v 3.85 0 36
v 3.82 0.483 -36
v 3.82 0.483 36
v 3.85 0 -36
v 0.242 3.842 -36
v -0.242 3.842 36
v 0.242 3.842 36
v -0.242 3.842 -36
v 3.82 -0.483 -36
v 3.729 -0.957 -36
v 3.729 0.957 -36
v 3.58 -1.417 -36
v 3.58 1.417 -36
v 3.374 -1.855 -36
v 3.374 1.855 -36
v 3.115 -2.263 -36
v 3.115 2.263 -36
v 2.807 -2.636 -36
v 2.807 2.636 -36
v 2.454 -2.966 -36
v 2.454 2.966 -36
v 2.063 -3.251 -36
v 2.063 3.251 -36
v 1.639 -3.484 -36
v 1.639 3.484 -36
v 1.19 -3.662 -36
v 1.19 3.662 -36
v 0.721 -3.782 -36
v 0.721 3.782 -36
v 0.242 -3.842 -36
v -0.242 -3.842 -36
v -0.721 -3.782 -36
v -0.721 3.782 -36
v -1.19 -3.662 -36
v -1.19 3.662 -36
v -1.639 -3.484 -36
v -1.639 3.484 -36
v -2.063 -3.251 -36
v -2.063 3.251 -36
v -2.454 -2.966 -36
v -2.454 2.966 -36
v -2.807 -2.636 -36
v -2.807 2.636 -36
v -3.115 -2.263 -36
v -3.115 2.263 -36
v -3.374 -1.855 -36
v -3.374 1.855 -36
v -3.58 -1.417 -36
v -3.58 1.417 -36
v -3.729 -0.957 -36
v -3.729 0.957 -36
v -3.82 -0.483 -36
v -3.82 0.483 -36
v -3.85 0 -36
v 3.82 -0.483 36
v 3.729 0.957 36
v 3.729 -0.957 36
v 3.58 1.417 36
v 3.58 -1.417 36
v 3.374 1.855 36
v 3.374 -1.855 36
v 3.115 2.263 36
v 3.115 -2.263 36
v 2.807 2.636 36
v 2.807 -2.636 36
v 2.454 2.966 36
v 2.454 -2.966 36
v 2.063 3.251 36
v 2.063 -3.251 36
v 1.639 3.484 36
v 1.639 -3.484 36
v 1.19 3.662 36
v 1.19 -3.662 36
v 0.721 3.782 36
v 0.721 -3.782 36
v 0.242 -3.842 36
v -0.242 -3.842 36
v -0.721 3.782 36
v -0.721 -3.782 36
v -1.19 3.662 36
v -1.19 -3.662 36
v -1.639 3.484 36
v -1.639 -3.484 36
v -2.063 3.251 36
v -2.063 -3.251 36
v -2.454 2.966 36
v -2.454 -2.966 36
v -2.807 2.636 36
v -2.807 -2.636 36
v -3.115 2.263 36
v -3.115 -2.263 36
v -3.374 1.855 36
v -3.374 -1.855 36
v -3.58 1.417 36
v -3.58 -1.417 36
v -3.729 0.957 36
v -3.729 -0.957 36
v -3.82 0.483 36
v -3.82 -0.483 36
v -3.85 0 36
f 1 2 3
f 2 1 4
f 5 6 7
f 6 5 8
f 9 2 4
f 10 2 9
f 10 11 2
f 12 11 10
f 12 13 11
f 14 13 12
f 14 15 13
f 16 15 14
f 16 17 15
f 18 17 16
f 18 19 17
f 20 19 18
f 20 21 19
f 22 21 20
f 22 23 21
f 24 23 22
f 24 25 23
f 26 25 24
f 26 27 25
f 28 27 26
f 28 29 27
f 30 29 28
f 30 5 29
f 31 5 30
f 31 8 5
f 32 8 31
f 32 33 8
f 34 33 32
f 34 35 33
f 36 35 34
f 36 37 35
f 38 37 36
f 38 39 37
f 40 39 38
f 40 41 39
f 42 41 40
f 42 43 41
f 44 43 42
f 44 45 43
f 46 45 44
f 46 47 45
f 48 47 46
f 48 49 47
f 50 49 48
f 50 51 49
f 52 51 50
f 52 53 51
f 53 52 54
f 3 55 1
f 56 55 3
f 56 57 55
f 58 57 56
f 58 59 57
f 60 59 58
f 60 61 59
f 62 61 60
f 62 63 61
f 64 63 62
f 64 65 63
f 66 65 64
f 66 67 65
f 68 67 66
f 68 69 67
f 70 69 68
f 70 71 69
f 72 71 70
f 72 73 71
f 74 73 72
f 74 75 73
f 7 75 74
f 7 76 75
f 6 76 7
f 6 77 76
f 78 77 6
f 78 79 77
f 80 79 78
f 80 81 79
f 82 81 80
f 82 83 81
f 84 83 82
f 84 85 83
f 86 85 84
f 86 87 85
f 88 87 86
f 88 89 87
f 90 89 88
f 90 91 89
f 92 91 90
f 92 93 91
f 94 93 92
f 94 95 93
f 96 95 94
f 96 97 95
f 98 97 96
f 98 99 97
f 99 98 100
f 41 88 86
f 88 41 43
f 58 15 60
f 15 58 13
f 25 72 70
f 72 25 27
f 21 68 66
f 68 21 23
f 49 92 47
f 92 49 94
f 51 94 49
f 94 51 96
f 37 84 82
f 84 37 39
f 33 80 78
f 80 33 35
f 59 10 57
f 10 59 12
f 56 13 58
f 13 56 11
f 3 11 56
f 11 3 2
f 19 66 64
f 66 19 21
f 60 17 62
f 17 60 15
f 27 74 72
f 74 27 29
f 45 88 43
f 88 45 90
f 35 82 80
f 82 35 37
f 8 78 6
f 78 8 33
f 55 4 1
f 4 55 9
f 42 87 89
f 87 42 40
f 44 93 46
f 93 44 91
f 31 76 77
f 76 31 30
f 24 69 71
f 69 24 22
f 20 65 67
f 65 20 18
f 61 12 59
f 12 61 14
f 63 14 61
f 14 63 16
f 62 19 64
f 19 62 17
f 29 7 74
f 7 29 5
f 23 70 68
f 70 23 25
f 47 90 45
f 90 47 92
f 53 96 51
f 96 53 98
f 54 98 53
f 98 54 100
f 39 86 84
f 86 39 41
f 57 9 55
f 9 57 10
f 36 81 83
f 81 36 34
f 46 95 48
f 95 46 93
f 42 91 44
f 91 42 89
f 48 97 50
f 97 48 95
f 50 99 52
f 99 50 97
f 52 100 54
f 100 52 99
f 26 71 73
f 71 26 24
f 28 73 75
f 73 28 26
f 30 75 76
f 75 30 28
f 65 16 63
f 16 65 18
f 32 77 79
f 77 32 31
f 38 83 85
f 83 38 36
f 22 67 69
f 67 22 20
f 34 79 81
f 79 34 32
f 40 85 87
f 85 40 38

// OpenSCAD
$fn = 50;


difference() {
	union() {
		translate(v = [0, 0, -36.0000000000]) {
			cylinder(h = 72, r = 3.8500000000);
		}
	}
	union() {
		translate(v = [0, 0, -100.0000000000]) {
			cylinder(h = 200, r = 0);
		}
	}
}
